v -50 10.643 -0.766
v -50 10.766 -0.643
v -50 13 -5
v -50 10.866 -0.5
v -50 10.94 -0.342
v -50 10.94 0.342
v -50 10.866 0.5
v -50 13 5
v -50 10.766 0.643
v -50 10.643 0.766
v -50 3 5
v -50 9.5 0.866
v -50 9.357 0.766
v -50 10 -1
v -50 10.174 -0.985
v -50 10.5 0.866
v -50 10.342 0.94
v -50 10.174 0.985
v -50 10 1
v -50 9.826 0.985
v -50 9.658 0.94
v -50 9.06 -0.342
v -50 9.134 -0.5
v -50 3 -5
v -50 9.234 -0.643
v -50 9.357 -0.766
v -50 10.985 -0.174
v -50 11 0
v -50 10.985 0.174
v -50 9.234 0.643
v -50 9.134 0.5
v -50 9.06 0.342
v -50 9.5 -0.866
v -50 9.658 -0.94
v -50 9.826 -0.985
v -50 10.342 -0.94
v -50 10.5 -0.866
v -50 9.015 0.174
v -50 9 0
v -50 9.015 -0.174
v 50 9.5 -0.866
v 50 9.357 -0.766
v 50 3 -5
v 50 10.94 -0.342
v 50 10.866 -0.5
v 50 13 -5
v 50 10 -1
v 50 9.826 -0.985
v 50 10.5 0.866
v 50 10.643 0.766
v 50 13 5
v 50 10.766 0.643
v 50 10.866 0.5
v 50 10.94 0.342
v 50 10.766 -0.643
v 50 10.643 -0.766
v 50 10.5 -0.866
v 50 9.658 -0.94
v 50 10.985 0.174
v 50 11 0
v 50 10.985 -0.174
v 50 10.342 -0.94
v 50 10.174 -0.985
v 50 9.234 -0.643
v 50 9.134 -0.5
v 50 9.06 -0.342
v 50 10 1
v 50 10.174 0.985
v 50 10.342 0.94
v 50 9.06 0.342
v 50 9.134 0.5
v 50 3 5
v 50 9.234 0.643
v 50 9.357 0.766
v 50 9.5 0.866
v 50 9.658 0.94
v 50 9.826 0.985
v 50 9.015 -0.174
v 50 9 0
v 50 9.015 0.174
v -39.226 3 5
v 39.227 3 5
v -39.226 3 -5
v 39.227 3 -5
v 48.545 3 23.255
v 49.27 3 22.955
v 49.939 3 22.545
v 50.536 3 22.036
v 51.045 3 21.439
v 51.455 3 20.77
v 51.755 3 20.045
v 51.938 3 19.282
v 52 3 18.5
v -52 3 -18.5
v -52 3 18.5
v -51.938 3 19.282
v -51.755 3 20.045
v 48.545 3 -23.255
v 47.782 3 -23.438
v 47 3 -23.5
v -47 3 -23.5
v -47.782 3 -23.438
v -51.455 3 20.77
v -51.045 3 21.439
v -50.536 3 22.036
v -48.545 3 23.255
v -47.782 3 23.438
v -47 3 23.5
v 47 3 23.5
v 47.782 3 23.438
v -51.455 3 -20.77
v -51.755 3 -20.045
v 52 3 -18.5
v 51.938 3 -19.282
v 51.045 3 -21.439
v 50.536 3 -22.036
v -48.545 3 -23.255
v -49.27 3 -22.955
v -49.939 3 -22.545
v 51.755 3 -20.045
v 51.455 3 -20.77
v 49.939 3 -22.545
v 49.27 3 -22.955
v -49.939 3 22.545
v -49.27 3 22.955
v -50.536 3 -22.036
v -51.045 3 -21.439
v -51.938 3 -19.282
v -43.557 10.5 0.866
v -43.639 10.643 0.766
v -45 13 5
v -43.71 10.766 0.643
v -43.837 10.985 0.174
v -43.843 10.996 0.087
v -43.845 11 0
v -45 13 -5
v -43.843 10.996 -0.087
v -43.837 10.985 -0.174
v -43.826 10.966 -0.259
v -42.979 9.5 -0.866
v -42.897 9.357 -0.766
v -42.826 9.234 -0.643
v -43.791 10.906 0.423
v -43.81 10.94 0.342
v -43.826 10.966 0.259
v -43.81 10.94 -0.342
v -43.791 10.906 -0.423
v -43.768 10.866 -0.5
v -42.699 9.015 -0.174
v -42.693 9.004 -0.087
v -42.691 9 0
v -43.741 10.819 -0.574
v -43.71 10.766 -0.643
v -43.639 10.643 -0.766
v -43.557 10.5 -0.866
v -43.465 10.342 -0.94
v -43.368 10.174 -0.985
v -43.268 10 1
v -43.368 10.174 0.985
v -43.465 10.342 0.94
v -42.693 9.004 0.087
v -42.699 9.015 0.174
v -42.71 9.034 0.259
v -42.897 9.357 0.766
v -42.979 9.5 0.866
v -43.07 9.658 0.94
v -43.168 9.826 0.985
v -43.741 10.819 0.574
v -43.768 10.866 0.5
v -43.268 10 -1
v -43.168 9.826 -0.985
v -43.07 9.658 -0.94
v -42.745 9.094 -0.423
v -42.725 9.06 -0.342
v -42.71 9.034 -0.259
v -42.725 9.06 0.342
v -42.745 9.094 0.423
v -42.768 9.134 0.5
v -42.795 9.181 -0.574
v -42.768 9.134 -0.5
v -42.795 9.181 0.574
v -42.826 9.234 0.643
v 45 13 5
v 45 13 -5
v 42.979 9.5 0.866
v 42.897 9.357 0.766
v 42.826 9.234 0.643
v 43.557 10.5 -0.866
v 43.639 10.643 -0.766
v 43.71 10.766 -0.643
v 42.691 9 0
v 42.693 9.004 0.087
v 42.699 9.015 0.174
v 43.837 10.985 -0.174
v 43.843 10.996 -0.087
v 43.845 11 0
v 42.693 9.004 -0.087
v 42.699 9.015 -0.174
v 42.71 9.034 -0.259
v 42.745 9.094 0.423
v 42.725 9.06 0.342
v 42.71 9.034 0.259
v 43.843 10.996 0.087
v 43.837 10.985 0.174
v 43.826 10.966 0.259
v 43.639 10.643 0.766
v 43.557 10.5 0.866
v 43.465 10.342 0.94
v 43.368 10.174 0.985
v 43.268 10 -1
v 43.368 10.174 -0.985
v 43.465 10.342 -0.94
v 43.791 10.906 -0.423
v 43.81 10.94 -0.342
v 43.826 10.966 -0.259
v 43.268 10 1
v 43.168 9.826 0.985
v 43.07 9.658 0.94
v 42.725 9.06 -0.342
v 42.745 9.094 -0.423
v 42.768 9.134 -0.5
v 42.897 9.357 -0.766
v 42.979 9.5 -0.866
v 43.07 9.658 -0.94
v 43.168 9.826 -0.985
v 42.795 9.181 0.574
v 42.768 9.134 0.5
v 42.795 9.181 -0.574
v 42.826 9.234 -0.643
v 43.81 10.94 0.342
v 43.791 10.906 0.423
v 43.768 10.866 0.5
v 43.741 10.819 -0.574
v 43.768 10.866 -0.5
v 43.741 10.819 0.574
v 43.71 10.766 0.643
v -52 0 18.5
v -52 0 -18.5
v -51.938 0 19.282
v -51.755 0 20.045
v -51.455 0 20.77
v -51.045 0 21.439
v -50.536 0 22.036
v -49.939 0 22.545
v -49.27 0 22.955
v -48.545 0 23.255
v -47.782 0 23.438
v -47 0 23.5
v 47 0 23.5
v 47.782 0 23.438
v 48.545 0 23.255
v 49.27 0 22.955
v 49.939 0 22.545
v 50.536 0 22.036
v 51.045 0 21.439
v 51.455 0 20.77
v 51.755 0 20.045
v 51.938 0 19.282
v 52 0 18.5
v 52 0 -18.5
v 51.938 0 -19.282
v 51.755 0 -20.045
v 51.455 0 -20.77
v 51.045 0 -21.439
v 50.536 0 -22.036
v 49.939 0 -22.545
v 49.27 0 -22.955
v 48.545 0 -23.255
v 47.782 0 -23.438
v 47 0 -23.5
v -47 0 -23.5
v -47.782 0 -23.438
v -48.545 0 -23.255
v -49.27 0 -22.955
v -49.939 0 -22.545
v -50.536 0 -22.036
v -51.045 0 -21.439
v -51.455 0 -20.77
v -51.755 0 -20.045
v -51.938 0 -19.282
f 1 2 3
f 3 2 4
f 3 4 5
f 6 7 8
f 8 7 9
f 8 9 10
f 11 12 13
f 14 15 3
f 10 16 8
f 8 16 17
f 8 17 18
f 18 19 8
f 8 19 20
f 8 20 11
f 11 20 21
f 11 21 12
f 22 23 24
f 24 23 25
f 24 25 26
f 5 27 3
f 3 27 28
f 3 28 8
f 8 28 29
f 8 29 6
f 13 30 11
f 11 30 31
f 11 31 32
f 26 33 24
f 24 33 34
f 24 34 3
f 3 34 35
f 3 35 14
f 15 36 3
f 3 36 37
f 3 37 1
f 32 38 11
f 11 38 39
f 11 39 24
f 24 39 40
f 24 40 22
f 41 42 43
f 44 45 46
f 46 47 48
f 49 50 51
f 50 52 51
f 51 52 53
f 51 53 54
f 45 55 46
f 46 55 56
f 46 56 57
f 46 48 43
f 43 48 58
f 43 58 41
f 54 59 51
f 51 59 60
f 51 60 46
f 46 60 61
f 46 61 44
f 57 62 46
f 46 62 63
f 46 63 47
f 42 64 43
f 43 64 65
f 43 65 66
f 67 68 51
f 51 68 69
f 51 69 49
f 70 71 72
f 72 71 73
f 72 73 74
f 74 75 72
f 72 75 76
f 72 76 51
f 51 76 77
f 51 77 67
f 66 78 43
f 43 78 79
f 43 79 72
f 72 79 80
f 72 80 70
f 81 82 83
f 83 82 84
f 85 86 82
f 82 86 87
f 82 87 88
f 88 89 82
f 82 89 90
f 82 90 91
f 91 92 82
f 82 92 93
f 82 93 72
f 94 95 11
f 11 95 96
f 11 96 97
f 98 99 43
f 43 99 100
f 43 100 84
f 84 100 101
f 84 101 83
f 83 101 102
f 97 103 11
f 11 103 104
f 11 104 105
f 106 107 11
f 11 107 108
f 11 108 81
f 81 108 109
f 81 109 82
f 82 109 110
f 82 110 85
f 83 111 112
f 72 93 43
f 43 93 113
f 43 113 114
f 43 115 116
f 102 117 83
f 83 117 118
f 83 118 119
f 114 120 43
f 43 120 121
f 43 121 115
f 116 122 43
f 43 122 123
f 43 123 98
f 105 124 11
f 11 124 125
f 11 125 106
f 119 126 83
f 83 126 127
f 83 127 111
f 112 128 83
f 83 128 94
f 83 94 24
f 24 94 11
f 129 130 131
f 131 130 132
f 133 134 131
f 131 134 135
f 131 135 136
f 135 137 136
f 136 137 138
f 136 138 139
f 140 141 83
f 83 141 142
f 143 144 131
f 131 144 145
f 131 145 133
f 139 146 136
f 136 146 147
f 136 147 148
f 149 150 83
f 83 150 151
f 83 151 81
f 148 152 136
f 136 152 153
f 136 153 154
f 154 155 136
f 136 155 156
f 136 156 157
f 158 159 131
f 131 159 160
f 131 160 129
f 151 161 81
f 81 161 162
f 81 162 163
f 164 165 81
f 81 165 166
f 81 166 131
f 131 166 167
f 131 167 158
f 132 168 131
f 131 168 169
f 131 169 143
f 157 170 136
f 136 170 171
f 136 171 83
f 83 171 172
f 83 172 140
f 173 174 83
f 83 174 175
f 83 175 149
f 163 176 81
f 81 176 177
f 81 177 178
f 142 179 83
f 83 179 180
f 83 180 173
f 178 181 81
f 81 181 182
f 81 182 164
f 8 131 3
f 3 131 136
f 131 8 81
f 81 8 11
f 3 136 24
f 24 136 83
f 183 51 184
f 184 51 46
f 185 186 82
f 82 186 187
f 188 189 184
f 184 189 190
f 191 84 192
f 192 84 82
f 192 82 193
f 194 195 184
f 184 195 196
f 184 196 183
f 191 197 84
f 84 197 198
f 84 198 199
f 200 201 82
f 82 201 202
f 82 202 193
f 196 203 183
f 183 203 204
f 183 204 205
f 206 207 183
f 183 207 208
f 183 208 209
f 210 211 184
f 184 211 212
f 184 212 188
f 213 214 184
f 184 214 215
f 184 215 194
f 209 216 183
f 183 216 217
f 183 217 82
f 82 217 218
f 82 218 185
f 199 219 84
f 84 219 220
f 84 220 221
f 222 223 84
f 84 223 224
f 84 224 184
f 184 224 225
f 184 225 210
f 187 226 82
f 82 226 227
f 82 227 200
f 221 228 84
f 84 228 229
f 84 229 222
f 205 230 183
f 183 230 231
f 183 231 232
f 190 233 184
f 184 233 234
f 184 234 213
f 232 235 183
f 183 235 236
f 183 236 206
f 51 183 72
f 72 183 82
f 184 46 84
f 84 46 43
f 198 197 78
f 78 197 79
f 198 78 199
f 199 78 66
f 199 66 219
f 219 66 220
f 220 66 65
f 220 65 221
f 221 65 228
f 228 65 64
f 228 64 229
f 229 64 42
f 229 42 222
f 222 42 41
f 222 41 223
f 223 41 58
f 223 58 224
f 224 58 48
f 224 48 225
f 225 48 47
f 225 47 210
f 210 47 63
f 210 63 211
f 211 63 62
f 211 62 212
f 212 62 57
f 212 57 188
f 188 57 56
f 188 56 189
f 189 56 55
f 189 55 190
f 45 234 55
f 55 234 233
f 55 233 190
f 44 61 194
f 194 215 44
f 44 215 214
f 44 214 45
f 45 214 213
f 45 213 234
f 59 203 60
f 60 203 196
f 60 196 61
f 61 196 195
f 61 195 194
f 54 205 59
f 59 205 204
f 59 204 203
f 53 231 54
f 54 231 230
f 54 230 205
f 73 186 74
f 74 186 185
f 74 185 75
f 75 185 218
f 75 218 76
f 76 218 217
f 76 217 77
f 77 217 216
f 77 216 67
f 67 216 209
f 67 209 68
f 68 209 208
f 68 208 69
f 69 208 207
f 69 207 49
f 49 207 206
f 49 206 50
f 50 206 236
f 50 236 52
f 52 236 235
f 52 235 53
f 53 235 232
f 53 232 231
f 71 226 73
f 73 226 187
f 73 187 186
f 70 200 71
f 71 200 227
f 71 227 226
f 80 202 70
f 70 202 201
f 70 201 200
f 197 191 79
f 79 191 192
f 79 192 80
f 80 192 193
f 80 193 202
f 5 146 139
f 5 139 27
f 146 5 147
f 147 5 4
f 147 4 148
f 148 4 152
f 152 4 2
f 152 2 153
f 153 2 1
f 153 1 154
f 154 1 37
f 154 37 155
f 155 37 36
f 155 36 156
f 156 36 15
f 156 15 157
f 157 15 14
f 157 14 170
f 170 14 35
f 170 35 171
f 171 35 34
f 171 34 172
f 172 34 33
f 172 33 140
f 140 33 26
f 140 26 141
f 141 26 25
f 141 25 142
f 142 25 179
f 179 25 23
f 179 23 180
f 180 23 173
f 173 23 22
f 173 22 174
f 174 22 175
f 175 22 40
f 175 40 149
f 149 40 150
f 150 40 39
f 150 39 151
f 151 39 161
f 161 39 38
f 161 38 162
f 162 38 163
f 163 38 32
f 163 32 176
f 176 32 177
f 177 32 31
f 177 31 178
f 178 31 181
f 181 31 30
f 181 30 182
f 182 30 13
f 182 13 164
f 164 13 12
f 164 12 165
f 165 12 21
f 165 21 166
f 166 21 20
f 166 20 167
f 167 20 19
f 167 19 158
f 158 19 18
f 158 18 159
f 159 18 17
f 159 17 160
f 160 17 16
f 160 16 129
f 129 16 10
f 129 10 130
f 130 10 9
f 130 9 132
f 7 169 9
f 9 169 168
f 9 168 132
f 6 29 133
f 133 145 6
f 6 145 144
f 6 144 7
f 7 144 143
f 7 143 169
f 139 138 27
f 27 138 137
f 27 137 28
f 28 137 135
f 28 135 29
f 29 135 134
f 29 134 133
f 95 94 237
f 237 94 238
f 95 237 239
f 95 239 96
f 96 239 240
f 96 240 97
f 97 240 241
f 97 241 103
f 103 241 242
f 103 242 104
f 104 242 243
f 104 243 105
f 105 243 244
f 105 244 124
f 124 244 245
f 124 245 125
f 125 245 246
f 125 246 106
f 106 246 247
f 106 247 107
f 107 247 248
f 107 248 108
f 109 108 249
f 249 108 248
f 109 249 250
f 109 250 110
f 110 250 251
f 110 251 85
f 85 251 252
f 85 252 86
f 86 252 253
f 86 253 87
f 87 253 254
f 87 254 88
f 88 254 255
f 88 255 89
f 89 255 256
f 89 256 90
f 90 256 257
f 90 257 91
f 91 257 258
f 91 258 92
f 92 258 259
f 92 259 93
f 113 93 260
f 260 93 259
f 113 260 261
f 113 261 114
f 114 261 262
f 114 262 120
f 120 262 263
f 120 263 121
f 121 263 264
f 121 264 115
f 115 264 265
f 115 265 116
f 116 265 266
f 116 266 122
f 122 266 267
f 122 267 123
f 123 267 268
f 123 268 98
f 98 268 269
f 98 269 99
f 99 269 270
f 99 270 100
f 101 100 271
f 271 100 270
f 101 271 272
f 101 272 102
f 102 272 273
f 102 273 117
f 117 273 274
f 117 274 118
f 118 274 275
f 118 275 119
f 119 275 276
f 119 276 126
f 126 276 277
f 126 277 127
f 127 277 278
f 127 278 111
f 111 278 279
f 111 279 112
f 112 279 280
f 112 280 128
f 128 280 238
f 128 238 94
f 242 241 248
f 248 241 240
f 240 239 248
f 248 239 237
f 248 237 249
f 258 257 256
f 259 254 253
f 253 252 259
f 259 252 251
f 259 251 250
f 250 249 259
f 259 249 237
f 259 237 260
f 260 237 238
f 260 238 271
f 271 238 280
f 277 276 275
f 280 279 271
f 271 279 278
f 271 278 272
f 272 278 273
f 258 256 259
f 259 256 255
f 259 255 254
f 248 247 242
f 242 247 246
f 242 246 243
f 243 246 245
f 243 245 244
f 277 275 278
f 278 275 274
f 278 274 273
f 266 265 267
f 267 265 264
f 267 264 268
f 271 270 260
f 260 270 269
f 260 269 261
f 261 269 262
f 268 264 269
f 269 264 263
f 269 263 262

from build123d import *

# Parameters (mm, degrees)
EXTRUDE_1_DEPTH     = 3
EXTRUDE_2_DEPTH     = 5
SKETCH_4_R          = 1
CUT_EXTRUDE_1_DEPTH = 101
EXTRUDE_3_DEPTH     = 3


with BuildPart() as part:
    # Эскиз1 → Бобышка-Вытянуть1 (new body)
    with BuildSketch(Plane(origin=(0, 0, 0), x_dir=(1, 0, 0), z_dir=(0, 1, 0))):
        with BuildLine():
            Line((-45, -21.5), (45, -21.5))
            ThreePointArc((45, -21.5), (48.535533906, -20.035533906), (50, -16.5))
            Line((50, -16.5), (50, 16.5))
            ThreePointArc((50, 16.5), (48.535533906, 20.035533906), (45, 21.5))
            Line((45, 21.5), (-45, 21.5))
            ThreePointArc((-45, 21.5), (-48.535533906, 20.035533906), (-50, 16.5))
            Line((-50, 16.5), (-50, -16.5))
            ThreePointArc((-50, -16.5), (-48.535533906, -20.035533906), (-45, -21.5))
        make_face()
    extrude(amount=EXTRUDE_1_DEPTH)

    # Эскиз3 → Бобышка-Вытянуть2 (add, symmetric)
    with BuildSketch(Plane.XY):
        Polygon((-39.226497308, 3), (-45, 3), (-50, 3), (-50, 13), (-45, 13), align=None)
        Polygon((50, 3), (45, 3), (39.226497308, 3), (45, 13), (50, 13), align=None)
    extrude(amount=EXTRUDE_2_DEPTH, both=True)

    # Эскиз4 → Вырез-Вытянуть1 (cut, through all)
    with BuildSketch(Plane.ZY.offset(50)):
        with Locations((0, 10)):
            Circle(SKETCH_4_R)
    extrude(amount=-CUT_EXTRUDE_1_DEPTH, mode=Mode.SUBTRACT)

    # Эскиз5 → Бобышка-Вытянуть3 (add)
    with BuildSketch(Plane.XZ):
        with BuildLine():
            Line((52, -18.5), (52, -16.5))
            Line((52, -16.5), (52, 16.5))
            Line((52, 16.5), (52, 18.5))
            ThreePointArc((52, 18.5), (50.535533906, 22.035533906), (47, 23.5))
            Line((47, 23.5), (45, 23.5))
            Line((45, 23.5), (-45, 23.5))
            Line((-45, 23.5), (-47, 23.5))
            ThreePointArc((-47, 23.5), (-50.535533906, 22.035533906), (-52, 18.5))
            Line((-52, 18.5), (-52, 16.5))
            Line((-52, 16.5), (-52, -16.5))
            Line((-52, -16.5), (-52, -18.5))
            ThreePointArc((-52, -18.5), (-50.535533906, -22.035533906), (-47, -23.5))
            Line((-47, -23.5), (-45, -23.5))
            Line((-45, -23.5), (45, -23.5))
            Line((45, -23.5), (47, -23.5))
            ThreePointArc((47, -23.5), (50.535533906, -22.035533906), (52, -18.5))
        make_face()
        with BuildLine():
            Line((50, 16.5), (50, -16.5))
            ThreePointArc((50, -16.5), (48.535533906, -20.035533906), (45, -21.5))
            Line((45, -21.5), (-45, -21.5))
            ThreePointArc((-45, -21.5), (-48.535533906, -20.035533906), (-50, -16.5))
            Line((-50, -16.5), (-50, 16.5))
            ThreePointArc((-50, 16.5), (-48.535533906, 20.035533906), (-45, 21.5))
            Line((-45, 21.5), (45, 21.5))
            ThreePointArc((45, 21.5), (48.535533906, 20.035533906), (50, 16.5))
        make_face(mode=Mode.SUBTRACT)
    extrude(amount=-EXTRUDE_3_DEPTH)


solid = part.part
